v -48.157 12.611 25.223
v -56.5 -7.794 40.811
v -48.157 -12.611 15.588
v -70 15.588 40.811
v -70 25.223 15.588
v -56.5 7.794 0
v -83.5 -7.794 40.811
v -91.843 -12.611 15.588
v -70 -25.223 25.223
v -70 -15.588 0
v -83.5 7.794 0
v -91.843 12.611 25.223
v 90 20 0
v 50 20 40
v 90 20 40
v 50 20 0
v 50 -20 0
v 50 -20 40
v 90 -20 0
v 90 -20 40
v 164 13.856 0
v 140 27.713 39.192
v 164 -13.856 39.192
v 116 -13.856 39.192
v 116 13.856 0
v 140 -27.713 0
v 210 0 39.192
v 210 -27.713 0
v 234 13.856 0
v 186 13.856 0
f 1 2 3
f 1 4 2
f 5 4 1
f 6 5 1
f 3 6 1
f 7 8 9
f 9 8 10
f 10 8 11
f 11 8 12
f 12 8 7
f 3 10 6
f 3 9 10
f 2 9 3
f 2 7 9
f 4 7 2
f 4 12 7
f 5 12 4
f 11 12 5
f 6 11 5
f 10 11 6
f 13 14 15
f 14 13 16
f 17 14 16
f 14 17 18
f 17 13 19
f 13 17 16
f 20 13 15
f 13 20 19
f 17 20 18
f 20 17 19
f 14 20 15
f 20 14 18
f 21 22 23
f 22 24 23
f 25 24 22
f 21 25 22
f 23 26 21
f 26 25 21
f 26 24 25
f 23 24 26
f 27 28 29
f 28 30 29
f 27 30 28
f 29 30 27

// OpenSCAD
// PlatonicSolids v.01
// (C) @oblomobka - 2023.01
// GPL license

/* **CUSTOMIZER VARIABLES** */
// Edge of Tetrahedron (h of pyramid for edge = 1 / = 0,816...)
TetrahedronEdge=48; //[10:100]
// Edge of Cube (distance between faces (h) is = edge)
CubeEdge=40; //[10:100]
// Edge of Octahedron (distance between faces (h)is aprox= edge*0,816)
OctahedronEdge=48; //[10:100]
// Edge of Dodecahedron (distance between faces (h)is aprox= edge*2,227)
DodecahedronEdge=18; //[10:100]
// Edge of Icosahedro (distance between faces (h)is aprox= edge*)
IcosahedronEdge=27; //[10:100]
// Center of the solid or stand over a face
Position = "Face"; //["Center", "Face"]
// Distance between solids in the rendering
Matrix = 70; //[50:200]

/* **MODULES** */
module Tetrahedron(edge=20, position="Face"){ 
    // Constants
    diAngleTetrahedron = acos(1/3); // dihedral angle of tetrahedron = 70.529
    rCirTetrahedron = sqrt(6)/4; // radius of a circumscribed sphere for edge = 1 / = 0,612...
    rInsTetrahedron = 1/sqrt(24); // radius of a inscribed sphere for edge = 1 / = 0,204
    rMidTetrahedron = 1/sqrt(8); // Midradius, which touches the middle of each edge / =354...
    hTetrahedron = sqrt(6)/3;
    
    // Variables
    x=edge/2;
    
    // Definition of points and faces
    Tpoints=[[x, 0, -x/sqrt(2)],[-x, 0, -x/sqrt(2)],[0, x, x/sqrt(2)],[0, -x, x/sqrt(2)]];
    Tfaces=[[0,2,3],[0,3,1],[3,2,1],[2,0,1]];
    
    // Tetrahedron stands on xy plane centered on the center of the face or centered on the center of polyhedron
    if(position=="Face"){
        translate([0,0,edge*(hTetrahedron-rCirTetrahedron)])
            rotate([90-diAngleTetrahedron/2, 0, 0])
                polyhedron(Tpoints,Tfaces);}
    else if(position=="Center") {
        polyhedron(Tpoints,Tfaces);} 
}

module Octahedron(edge=20, position="Face"){ 
    // Constants
    diAngleOctahedron = acos(-1/3); // dihedral angle of octahedron = 109,471
    rCirOctahedron = 1/sqrt(2); // radius of a circumscribed sphere for edge = 1 / = 0,707..
    rInsOctahedron = sqrt(6)/6; // radius of a inscribed sphere for edge = 1 / = 0,408
    rMidOctahedron = 1/2; // Midradius, which touches the middle of each edge / =0,5
    
    // Variables
    x=edge/sqrt(2);
    
    // Definition of points and faces
    Opoints=[[x,0,0],[-x,0,0],[0,x,0],[0,-x,0],[0,0,x],[0,0,-x]];
    Ofaces=[[0,4,3],[3,4,1],[1,4,2],[2,4,0],
            [5,0,3],[2,0,5],[1,2,5],[3,1,5]];
    
    // Octahedron stands on xy plane centered on the center of the face or centered on the center of polyhedron
    if(position=="Face"){
        translate([0,0,edge*rInsOctahedron])
            rotate([-diAngleOctahedron/2, 0, 0])    
                rotate([0, 0, 45])
                    polyhedron(Opoints,Ofaces);}
    else if(position=="Center") {
        polyhedron(Opoints,Ofaces);} 
}

module Cube(edge=20, position="Face"){
    // Constants
    diAngleCube = 90; // dihedral angle of cube
    rCirCube = sqrt(3)/2; // radius of a circumscribed sphere for edge = 1 / = 1,061...
    rInsCube = 1/2; // radius of a inscribed sphere for edge = 1 / = 0,5
    rMidCube = 1/sqrt(2); // Midradius, which touches the middle of each edge / =0,707...
    
    // Variables
    x=edge/2;
    
    // Definition of points and faces
    Cpoints=[[x, x, x],[x, -x, x],[-x, -x, x],[-x, x, x],
             [x, x, -x],[x, -x, -x],[-x, -x, -x],[-x, x, -x]];
    Cfaces=[[0,1,2,3],[0,4,5,1],[0,3,7,4],[2,1,5,6],[3,2,6,7],[7,6,5,4]];
    
    // Cube stands on xy plane centered on the center of the face or centered on the center of polyhedron
    if(position=="Face"){
        translate([0,0,x])
            polyhedron(Cpoints,Cfaces);}
    else if(position=="Center") {
        polyhedron(Cpoints,Cfaces);} 
}

module Dodecahedron(edge=20, position="Face"){ 
    // Constants
    phi = (1+sqrt(5))/2; // Golden ratio = 1,618...
    diAngleDodecahedron = acos(-1/sqrt(5))/*atan(1/phi)*/; // dihedral angle of Dodecahedron = 116,56505...
    rCirDodecahedron = sqrt(3)*phi/2; // radius of a circumscribed sphere for edge = 1 / =1,401...
    rInsDodecahedron = phi^2/(2*sqrt(3-phi)); // radius of a inscribed sphere for edge = 1 / =1,1135...
    rMidDodecahedron = phi^2/2; // Midradius, which touches the middle of each edge / =1,309...
    
    // Variables
    diagonal=edge*phi; // x depicts the side of cube inscrit in the dodecahedron, that is the lenght of the diagonal of regular pentagon
    pCube = diagonal/2; // to depicts the coordinates of cube inscrit in a pentagon center in (0,0,0) - 8 vertices
    // longside : shortSide depicts the 3 rectangles to complete the 20 vertices of dodecahedron apart of the cube
    longSide = (edge*phi^2)/2;
    shortSide = edge/2;
    
    // Definition of points and faces
    Dpoints=[[-pCube,-pCube,-pCube],[-pCube,pCube,-pCube],[pCube,pCube,-pCube],[pCube,-pCube,-pCube],
            [-pCube,-pCube,pCube],[-pCube,pCube,pCube],[pCube,pCube,pCube],[pCube,-pCube,pCube],
            [0,-longSide,-shortSide],[0,-longSide,shortSide],[0,longSide,-shortSide],[0,longSide,shortSide],
            [-shortSide,0,-longSide],[shortSide,0,-longSide],[-shortSide,0,longSide],[shortSide,0,longSide],
            [-longSide,-shortSide,0],[-longSide,shortSide,0],[longSide,-shortSide,0],[longSide,shortSide,0]];
    Dfaces=[[0,8,3,13,12],[2,10,1,12,13],[2,13,3,18,19],[1,12,0,16,17],
           [0,16,4,9,8],[7,18,3,8,9],[2,19,6,11,10],[5,17,1,10,11],
           [7,9,4,14,15],[5,11,6,15,14],[5,14,4,16,17],[7,15,6,19,18]];
    
    // Dodecahedron stands on xy plane centered on the center of the face or centered on the center of polyhedron
    if(position=="Face"){
        translate([0,0,edge*rInsDodecahedron])
            rotate([90-diAngleDodecahedron/2, 0, 0])
                polyhedron(Dpoints,Dfaces);}
    else if(position=="Center") {
        polyhedron(Dpoints,Dfaces);} 
}
module Icosahedron(edge=20, position="Face"){ 
    // Constants
    phi = (1+sqrt(5))/2; // Golden ratio = 1,618...
    diAngleIcosahedron = acos(-sqrt(5)/3); // dihedral angle of Icosahedron = 138,1897...
    rCirIcosahedron = sqrt(phi*sqrt(5))/2; // radius of a circumscribed sphere for edge = 1 / =0,951...
    rInsIcosahedron = phi^2/(2*sqrt(3)); // radius of a inscribed sphere for edge = 1 / =0,7558...
    rMidIcosahedron = phi/2; // Midradius, which touches the middle of each edge / =0,809...
    
    // Variables
    // longside : shortSide depicts the 3 rectangles (one in each plane (xy - xz - yz) to depict the 12 vertices of Icosahedron
    longSide = edge*phi/2;
    shortSide = edge/2;
    
    // Definition of points and faces
    Ipoints=[   [longSide,shortSide,0],[longSide,-shortSide,0],[-longSide,-shortSide,0],[-longSide,shortSide,0],
                [shortSide,0,longSide],[shortSide,0,-longSide],[-shortSide,0,-longSide],[-shortSide,0,longSide],
                [0,longSide,shortSide],[0,longSide,-shortSide],[0,-longSide,-shortSide],[0,-longSide,shortSide]];
    Ifaces=[    [0,4,1],[0,8,4],[0,9,8],[0,5,9],[0,1,5],
                [2,11,7],[2,10,11],[2,6,10],[2,3,6],[2,7,3],
                [1,10,5],[1,11,10],[1,4,11],[4,7,11],[4,8,7],
                [7,8,3],[3,8,9],[3,9,6],[6,9,5],[6,5,10]];
    
    // Icosahedron stands on xy plane centered on the center of the face or centered on the center of polyhedron
    if(position=="Face"){
        translate([0,0,edge*rInsIcosahedron])
            rotate([90-diAngleIcosahedron/2, 0, 0])
                polyhedron(Ipoints,Ifaces);}
    else if(position=="Center") {
        polyhedron(Ipoints,Ifaces);} 
}

/* **RENDERING OF SOLIDS** */ 
translate([-1*Matrix,0,0])
    Icosahedron(edge=IcosahedronEdge, position=Position);
translate([0,0,0])
    Dodecahedron(edge=DodecahedronEdge, position=Position);
translate([Matrix,0,0])
    Cube(edge=CubeEdge, position=Position);
translate([Matrix*2,0,0])
    Octahedron(edge=OctahedronEdge, position=Position);
translate([Matrix*3,0,0])
    Tetrahedron(edge=TetrahedronEdge, position=Position);  
